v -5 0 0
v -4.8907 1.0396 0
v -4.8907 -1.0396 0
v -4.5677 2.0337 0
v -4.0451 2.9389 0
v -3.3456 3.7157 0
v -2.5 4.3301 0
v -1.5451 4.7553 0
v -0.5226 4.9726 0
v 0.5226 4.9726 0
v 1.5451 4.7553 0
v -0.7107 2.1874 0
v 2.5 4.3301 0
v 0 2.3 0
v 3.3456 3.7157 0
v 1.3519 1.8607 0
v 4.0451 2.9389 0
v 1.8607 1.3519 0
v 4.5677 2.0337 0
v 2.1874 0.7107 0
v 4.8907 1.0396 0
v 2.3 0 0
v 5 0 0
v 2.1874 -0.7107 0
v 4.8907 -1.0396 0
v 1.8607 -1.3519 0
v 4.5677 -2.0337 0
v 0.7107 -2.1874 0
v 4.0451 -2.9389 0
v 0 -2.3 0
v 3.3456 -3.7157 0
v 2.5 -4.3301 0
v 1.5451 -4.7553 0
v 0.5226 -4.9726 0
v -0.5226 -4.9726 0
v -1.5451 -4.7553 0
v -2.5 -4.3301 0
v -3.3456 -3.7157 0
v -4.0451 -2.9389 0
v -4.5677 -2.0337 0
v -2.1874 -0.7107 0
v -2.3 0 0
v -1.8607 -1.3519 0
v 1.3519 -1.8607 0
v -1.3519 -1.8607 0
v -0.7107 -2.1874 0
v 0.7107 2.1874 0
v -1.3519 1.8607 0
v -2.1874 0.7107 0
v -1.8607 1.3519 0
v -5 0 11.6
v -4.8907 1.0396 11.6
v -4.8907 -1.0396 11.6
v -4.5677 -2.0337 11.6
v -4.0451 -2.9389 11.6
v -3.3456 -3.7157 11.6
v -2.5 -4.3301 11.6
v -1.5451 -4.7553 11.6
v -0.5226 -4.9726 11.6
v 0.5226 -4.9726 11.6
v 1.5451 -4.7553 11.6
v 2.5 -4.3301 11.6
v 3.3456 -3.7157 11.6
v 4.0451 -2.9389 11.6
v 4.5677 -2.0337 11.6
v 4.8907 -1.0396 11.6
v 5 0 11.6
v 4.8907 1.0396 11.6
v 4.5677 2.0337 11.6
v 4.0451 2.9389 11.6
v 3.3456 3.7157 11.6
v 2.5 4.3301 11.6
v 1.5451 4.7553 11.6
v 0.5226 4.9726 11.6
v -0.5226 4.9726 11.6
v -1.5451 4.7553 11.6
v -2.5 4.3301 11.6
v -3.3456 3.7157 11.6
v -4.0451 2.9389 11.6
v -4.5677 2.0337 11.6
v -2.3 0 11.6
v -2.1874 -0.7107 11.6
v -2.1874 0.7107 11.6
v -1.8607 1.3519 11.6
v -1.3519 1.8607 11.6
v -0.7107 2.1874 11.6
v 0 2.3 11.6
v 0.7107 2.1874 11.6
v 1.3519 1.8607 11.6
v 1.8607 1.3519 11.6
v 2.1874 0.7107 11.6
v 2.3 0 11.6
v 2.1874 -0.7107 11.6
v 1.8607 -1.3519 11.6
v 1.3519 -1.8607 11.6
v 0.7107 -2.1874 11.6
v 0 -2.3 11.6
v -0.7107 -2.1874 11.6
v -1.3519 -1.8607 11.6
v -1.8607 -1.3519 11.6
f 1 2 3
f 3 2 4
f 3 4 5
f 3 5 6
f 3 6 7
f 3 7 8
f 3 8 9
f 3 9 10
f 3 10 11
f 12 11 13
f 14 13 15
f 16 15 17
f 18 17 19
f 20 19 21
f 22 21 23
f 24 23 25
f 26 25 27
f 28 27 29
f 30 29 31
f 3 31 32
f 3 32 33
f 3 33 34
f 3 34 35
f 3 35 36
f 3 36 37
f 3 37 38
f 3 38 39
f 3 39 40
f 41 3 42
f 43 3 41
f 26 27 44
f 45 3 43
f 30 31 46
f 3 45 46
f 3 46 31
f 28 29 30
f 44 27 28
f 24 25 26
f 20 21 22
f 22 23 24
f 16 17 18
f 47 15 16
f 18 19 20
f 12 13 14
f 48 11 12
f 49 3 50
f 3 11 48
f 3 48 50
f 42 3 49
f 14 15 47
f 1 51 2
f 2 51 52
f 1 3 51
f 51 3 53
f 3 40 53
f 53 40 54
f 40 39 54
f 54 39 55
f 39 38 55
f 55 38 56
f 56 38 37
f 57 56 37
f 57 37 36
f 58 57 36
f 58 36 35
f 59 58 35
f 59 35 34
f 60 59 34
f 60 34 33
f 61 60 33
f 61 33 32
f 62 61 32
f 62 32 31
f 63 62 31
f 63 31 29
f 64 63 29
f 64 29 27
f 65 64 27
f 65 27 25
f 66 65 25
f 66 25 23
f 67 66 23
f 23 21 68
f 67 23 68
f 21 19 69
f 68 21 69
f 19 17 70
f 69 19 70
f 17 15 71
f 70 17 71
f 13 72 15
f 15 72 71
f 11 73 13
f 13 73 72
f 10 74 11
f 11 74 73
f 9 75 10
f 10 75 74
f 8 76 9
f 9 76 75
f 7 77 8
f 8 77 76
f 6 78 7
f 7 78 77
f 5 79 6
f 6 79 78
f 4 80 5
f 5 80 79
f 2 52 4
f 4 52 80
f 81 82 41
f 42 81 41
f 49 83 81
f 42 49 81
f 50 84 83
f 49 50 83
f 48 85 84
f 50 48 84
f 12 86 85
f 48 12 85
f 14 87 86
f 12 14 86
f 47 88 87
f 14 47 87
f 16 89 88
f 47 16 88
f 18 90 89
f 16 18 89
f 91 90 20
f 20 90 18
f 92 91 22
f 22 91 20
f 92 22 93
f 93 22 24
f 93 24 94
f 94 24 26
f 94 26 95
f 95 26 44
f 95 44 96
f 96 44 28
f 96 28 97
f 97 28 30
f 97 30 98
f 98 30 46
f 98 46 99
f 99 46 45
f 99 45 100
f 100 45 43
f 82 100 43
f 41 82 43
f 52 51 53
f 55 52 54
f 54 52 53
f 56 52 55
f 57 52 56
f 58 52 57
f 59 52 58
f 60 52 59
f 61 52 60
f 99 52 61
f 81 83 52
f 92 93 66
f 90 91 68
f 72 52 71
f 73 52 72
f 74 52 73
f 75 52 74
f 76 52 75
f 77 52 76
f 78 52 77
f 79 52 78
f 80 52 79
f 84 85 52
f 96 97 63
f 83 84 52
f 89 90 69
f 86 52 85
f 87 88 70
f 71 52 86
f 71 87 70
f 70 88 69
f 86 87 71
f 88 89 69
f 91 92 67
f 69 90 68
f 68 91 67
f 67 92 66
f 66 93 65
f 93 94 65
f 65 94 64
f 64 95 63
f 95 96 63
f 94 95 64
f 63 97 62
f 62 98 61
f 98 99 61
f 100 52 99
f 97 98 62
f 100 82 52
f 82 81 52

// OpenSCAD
// file: library.scad
//rounded cube Functions from: http://www.thingiverse.com/thing:38069


module cube_fillet(size,radius=-1,vertical,top,bottom,center=false,$fn=0){
    if (center) {
        cube_fillet_inside(size, radius, vertical, top, bottom, $fn=$fn);
    } else {
        translate([size[0]/2, size[1]/2, size[2]/2])
            cube_fillet_inside(size, radius, vertical, top, bottom, $fn=$fn);
    }
}
module fillet(radius, height=100, $fn=60) {  
    //this creates negative of fillet,
    //i.e. thing to be substracted from object
    translate([-radius, -radius, -height/2-0.01])
        difference() {
            cube([radius*2, radius*2, height+0.02]);
            cylinder(r=radius, h=height+0.02, $fn=$fn);
        }
}

module cube_negative_fillet(size,radius=-1,vertical, top,bottom,$fn=0){
    j=[1,0,1,0];

    for (i=[0:3]) {
        if (radius > -1) {
            rotate([0, 0, 90*i])
                translate([size[1-j[i]]/2, size[j[i]]/2, 0])
                    fillet(radius, size[2], $fn=$fn);
        } else {
            rotate([0, 0, 90*i])
                translate([size[1-j[i]]/2, size[j[i]]/2, 0])
                    fillet(vertical[i], size[2], $fn=$fn);

        }
        rotate([90*i, -90, 0])
            translate([size[2]/2, size[j[i]]/2, 0 ])
                fillet(top[i], size[1-j[i]], $fn=$fn);
        rotate([90*(4-i), 90, 0])
            translate([size[2]/2, size[j[i]]/2, 0])
                fillet(bottom[i], size[1-j[i]], $fn=$fn);
    }
}

module cube_fillet_inside(size,radius=-1,vertical,top,bottom,$fn=0){

    if (radius == 0) {
        cube(size, center=true);
    } else {
        difference() {
            cube(size, center=true);
            cube_negative_fillet(size, radius, vertical, top, bottom, $fn=$fn);
        }
    }
}
// file: dimensions.scad
// Dimensions
// Author: sdavi


LM8UU = [8, 15, 24];//rod diameter,outter diameter, length
LM12UU = [12, 21, 30];
LM12LUU = [12, 21, 57];

BEARING_624 = [4,13,5]; //inner diameter(hole), outter diameter, thickness (http://reprap.org/wiki/Ball_bearing)
BEARING_2x624 = [4, 13, 10]; // 2 624 bearings together, good size for GT2

BEARING_6300 = [10,35,11]; //inner diameter, outer diameter, thickness



GT2_belt_width = 6;
GT2_belt_pitch = 2;
GT2_belt_thickness = 1.38;
GT2_belt_tooth_height = 0.75;  
GT2_belt_tooth_ratio = 0.5;



GT2_pulley_geared_diameter=12.2;//measured from top of tooth to top of tooth opp side// 12.2 is for the 20 tooth pulley

//from metric (prusa i3)
m4_diameter = 4.6;
m4_nut_diameter = 7.6;
m4_nut_diameter_horizontal = 8.15;

m3_diameter = 3.6;
m3_nut_diameter = 5.3;
m3_nut_diameter_horizontal = 6.8;
m3_washer_diameter = 6.9;
//end i3 variables

m5_diameter = 5.5;

//Hex Head M3x30: Head 5.5mm flat to flat, 2.12mm thick
m3_hex_head_diameter = 5.5*2/sqrt(3) + 0.2;

M4 = m4_diameter;
M3 = m3_diameter;
M5 = m5_diameter;
m4_washer_thickness = 0.8; //flat and penny washers
m4_washer_diameter = 9.6;

nema17_holes = 31;// mm between screws
nema17_width = 42; //width
// file: configuration.scad
// Configuration
// Author: sdavi


include <dimensions.scad>
use <library.scad>


x_rod_distance = 45;

y_bearing = LM8UU;
x_bearing = LM8UU;
z_bearing = LM12LUU;
belt_bearing = BEARING_2x624;


end_belt_bearing_distance = 25;// distance between 2 bearings on y-ends
belt_clearance = 9.5; //space for belts

frame_screw = M5; //m5 screws for v/tslot

frame_spacer_height = 18; //height to spacer to mount to frame to clear x-ends 


// calculated vars

//y bearing block
y_bearing_block_length = 2*y_bearing[2] + M3*2 + 5;
y_bearing_block_width = y_bearing[1]+5;
y_bearing_block_height = 6+y_bearing[1]/2;

xy_bearing_distance = y_bearing_block_width/2+belt_clearance+belt_bearing[1]/2; //distance between center of y-bearing to center of x-belt bearing 


//min height for belt bearings
min_beltbearing_height = max(((belt_bearing[2]+m4_washer_thickness*2) * 2), y_bearing_block_height);
// main file
// Belt Bearing Spacer
// Author: sdavi


include <configuration.scad>


bearing_height = (belt_bearing[2]+m4_washer_thickness*2);

height = min_beltbearing_height-bearing_height;

echo ("Spacer height:", height);

difference(){
	cylinder(d=belt_bearing[1]-3, h=height,$fn=30);
	cylinder(d=belt_bearing[0]+0.6, h=height,$fn=20);
}
